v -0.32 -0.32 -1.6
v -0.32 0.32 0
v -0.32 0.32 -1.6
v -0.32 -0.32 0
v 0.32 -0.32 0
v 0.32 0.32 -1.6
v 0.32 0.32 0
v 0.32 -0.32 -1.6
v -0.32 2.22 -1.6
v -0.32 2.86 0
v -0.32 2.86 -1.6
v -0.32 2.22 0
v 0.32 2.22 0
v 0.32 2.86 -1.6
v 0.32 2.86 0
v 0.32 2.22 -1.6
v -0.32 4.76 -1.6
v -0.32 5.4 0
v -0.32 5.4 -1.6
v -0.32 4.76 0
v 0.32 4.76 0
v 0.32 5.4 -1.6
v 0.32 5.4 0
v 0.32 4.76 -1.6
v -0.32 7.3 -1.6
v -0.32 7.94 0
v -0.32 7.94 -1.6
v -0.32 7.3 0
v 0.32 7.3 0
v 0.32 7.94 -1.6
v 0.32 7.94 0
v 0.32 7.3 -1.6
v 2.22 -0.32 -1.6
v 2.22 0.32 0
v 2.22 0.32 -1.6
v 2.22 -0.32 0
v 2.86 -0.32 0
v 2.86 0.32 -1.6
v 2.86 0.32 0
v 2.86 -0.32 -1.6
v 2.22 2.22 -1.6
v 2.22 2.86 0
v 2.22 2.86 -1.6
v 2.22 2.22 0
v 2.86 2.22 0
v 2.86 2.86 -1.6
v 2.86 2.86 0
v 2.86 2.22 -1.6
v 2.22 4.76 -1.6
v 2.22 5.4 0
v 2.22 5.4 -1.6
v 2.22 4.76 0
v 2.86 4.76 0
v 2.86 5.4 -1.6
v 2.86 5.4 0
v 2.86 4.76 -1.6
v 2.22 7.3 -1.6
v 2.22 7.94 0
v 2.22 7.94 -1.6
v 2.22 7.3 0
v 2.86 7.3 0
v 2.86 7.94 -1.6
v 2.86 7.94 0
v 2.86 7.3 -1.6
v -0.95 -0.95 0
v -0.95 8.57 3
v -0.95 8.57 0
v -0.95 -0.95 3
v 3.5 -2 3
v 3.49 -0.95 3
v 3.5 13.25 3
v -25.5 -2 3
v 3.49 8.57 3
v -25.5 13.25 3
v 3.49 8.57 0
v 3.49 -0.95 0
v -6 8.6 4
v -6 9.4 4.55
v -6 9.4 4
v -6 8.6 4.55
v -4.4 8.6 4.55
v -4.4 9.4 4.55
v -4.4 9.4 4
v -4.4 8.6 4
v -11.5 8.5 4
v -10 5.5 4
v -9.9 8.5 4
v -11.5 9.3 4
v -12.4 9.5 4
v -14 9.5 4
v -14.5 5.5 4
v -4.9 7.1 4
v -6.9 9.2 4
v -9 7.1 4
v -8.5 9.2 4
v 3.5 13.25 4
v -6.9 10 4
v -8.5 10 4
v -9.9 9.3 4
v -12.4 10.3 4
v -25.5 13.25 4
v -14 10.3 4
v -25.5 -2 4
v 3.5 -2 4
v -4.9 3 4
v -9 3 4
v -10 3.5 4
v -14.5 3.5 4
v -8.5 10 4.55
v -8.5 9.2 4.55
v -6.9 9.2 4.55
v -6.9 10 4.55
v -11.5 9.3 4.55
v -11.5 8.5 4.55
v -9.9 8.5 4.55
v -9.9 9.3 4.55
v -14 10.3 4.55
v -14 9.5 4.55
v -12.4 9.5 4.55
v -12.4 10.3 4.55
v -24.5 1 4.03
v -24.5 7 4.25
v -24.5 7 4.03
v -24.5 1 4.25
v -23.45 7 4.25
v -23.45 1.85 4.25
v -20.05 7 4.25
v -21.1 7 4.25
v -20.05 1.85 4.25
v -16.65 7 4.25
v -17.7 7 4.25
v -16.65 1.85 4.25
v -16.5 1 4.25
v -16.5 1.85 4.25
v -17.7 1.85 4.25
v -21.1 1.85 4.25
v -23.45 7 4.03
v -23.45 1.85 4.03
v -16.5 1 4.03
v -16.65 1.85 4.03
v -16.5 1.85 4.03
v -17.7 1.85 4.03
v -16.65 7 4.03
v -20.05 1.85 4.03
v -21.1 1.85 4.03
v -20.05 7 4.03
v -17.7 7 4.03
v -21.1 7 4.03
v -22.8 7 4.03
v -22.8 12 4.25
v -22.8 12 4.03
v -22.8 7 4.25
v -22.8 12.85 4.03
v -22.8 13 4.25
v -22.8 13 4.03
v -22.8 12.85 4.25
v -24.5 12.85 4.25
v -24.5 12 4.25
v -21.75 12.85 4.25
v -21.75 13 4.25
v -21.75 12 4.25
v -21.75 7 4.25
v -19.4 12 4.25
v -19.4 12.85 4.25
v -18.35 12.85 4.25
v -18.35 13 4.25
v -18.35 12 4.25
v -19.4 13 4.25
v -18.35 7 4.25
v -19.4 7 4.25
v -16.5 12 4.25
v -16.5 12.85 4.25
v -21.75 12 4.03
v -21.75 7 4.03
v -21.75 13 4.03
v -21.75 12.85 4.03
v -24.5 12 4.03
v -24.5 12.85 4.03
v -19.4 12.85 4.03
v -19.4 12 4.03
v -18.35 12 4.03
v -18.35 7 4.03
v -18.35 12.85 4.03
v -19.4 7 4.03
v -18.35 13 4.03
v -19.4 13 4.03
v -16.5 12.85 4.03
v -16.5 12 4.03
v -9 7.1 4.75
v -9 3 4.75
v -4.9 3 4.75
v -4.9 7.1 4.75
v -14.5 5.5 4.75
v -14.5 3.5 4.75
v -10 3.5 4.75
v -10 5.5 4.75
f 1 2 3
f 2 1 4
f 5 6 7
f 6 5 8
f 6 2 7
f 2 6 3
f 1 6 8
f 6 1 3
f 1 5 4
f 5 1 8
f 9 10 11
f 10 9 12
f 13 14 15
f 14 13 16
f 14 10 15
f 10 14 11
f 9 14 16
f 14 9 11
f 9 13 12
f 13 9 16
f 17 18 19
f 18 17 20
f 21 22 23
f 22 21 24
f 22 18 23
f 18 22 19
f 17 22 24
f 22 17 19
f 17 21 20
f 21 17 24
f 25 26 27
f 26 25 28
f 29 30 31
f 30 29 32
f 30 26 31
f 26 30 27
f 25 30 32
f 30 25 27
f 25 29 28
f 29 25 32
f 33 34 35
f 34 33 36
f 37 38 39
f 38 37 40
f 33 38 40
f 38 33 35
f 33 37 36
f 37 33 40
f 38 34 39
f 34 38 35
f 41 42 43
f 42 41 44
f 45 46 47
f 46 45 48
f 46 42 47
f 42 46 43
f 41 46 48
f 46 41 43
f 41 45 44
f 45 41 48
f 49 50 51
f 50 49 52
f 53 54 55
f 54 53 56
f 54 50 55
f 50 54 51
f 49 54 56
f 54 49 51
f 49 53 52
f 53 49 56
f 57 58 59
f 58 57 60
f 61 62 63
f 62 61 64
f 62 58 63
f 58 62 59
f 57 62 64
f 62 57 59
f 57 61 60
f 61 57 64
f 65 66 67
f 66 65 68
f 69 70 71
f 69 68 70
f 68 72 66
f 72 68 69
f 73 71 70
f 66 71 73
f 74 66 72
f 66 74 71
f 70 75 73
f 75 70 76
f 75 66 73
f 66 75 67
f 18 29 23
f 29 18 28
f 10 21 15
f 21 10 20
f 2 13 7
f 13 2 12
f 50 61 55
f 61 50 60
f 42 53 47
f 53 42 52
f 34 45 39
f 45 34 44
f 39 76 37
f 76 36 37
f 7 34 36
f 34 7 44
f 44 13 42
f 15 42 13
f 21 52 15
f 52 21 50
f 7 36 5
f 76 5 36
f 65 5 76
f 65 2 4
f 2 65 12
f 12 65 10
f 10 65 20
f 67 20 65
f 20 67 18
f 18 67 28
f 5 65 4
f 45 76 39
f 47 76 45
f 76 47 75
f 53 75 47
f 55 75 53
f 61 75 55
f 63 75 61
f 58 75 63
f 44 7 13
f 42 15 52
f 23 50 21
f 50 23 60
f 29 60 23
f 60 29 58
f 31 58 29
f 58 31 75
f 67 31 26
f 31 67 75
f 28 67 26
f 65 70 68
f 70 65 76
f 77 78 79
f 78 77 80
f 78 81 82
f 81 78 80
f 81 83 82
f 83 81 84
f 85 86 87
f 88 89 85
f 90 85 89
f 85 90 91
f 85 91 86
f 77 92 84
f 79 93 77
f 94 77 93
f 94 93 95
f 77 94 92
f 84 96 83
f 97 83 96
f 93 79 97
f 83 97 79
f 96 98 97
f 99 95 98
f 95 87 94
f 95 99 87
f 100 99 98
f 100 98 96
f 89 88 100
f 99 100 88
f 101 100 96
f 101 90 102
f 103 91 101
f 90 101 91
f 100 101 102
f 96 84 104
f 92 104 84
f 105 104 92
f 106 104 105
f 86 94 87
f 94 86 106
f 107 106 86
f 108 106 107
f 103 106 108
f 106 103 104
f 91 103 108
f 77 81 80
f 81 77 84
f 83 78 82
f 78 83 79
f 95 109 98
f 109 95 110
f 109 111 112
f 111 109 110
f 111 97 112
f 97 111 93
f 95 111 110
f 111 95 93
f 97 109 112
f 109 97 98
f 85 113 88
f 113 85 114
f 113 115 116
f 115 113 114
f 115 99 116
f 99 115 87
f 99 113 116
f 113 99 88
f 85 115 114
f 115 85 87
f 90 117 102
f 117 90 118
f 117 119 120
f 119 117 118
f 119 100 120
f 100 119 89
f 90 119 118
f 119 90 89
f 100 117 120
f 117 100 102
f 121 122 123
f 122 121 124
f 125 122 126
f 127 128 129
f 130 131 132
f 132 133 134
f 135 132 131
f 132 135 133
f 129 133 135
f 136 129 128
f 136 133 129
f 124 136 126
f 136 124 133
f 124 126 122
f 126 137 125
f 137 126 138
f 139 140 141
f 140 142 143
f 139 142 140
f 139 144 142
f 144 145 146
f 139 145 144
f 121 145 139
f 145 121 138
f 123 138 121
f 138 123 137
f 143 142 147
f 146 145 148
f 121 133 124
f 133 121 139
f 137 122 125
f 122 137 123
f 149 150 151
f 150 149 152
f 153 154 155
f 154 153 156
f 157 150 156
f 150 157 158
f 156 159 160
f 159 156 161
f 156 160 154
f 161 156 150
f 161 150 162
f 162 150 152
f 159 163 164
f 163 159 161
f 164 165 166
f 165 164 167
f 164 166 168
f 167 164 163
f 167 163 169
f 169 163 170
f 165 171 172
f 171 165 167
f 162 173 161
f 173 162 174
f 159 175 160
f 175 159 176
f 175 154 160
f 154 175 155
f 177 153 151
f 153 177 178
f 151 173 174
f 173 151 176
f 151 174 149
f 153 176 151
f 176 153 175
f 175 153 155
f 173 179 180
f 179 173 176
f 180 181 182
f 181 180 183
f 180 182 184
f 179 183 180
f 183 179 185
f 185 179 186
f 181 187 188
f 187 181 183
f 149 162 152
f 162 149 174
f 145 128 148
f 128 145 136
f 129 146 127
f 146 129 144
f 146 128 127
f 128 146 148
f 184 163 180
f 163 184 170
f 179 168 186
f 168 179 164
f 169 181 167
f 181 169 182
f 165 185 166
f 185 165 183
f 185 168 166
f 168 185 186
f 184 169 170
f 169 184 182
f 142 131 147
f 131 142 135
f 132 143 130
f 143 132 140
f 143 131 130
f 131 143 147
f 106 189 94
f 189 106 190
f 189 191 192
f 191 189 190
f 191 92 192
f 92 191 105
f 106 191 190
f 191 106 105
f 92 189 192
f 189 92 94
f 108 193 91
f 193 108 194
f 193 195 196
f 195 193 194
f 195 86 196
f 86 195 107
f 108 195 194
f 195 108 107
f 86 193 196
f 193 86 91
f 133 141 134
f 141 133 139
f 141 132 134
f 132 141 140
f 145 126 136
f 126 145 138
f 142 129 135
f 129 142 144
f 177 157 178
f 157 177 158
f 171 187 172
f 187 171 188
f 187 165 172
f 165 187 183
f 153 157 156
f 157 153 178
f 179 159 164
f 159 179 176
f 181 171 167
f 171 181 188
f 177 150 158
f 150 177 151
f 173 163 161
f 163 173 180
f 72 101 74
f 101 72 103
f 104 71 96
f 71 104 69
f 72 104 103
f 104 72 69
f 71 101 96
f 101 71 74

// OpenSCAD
// Standard 15 x 29 mm nRF24L01 breakout (PCB antenna version).
// Origin: footprint pad 1. The 2x4 connector stays registered to U3 pads 1-8,
// while the module body extends toward the controller PCB interior.

$fn = 28;

module module_pcb() {
    translate([-25.5, -2.0, 3.0]) cube([29.0, 15.25, 1.0]);
}

module header() {
    translate([-0.95, -0.95, 0.0]) cube([4.44, 9.52, 3.0]);
    for (x = [0, 2.54])
        for (y = [0, 2.54, 5.08, 7.62])
            translate([x - 0.32, y - 0.32, -1.6]) cube([0.64, 0.64, 5.6]);
}

module radio_components() {
    // Nordic QFN, crystal and representative passives.
    translate([-9.0, 3.0, 4.0]) cube([4.1, 4.1, 0.75]);
    translate([-14.5, 3.5, 4.0]) cube([4.5, 2.0, 0.75]);
    for (p = [[-6.0, 8.6], [-8.5, 9.2], [-11.5, 8.5], [-14.0, 9.5]])
        translate([p[0], p[1], 4.0]) cube([1.6, 0.8, 0.55]);

    // Raised copper-like meander antenna at the far end.
    for (i = [0 : 4])
        translate([-24.5 + i * 1.7, (i % 2) ? 7.0 : 1.0, 4.03])
            cube([1.05, 6.0, 0.22]);
    translate([-24.5, 1.0, 4.03]) cube([8.0, 0.85, 0.22]);
    translate([-24.5, 12.0, 4.03]) cube([8.0, 0.85, 0.22]);
}

union() {
    module_pcb();
    header();
    radio_components();
}
